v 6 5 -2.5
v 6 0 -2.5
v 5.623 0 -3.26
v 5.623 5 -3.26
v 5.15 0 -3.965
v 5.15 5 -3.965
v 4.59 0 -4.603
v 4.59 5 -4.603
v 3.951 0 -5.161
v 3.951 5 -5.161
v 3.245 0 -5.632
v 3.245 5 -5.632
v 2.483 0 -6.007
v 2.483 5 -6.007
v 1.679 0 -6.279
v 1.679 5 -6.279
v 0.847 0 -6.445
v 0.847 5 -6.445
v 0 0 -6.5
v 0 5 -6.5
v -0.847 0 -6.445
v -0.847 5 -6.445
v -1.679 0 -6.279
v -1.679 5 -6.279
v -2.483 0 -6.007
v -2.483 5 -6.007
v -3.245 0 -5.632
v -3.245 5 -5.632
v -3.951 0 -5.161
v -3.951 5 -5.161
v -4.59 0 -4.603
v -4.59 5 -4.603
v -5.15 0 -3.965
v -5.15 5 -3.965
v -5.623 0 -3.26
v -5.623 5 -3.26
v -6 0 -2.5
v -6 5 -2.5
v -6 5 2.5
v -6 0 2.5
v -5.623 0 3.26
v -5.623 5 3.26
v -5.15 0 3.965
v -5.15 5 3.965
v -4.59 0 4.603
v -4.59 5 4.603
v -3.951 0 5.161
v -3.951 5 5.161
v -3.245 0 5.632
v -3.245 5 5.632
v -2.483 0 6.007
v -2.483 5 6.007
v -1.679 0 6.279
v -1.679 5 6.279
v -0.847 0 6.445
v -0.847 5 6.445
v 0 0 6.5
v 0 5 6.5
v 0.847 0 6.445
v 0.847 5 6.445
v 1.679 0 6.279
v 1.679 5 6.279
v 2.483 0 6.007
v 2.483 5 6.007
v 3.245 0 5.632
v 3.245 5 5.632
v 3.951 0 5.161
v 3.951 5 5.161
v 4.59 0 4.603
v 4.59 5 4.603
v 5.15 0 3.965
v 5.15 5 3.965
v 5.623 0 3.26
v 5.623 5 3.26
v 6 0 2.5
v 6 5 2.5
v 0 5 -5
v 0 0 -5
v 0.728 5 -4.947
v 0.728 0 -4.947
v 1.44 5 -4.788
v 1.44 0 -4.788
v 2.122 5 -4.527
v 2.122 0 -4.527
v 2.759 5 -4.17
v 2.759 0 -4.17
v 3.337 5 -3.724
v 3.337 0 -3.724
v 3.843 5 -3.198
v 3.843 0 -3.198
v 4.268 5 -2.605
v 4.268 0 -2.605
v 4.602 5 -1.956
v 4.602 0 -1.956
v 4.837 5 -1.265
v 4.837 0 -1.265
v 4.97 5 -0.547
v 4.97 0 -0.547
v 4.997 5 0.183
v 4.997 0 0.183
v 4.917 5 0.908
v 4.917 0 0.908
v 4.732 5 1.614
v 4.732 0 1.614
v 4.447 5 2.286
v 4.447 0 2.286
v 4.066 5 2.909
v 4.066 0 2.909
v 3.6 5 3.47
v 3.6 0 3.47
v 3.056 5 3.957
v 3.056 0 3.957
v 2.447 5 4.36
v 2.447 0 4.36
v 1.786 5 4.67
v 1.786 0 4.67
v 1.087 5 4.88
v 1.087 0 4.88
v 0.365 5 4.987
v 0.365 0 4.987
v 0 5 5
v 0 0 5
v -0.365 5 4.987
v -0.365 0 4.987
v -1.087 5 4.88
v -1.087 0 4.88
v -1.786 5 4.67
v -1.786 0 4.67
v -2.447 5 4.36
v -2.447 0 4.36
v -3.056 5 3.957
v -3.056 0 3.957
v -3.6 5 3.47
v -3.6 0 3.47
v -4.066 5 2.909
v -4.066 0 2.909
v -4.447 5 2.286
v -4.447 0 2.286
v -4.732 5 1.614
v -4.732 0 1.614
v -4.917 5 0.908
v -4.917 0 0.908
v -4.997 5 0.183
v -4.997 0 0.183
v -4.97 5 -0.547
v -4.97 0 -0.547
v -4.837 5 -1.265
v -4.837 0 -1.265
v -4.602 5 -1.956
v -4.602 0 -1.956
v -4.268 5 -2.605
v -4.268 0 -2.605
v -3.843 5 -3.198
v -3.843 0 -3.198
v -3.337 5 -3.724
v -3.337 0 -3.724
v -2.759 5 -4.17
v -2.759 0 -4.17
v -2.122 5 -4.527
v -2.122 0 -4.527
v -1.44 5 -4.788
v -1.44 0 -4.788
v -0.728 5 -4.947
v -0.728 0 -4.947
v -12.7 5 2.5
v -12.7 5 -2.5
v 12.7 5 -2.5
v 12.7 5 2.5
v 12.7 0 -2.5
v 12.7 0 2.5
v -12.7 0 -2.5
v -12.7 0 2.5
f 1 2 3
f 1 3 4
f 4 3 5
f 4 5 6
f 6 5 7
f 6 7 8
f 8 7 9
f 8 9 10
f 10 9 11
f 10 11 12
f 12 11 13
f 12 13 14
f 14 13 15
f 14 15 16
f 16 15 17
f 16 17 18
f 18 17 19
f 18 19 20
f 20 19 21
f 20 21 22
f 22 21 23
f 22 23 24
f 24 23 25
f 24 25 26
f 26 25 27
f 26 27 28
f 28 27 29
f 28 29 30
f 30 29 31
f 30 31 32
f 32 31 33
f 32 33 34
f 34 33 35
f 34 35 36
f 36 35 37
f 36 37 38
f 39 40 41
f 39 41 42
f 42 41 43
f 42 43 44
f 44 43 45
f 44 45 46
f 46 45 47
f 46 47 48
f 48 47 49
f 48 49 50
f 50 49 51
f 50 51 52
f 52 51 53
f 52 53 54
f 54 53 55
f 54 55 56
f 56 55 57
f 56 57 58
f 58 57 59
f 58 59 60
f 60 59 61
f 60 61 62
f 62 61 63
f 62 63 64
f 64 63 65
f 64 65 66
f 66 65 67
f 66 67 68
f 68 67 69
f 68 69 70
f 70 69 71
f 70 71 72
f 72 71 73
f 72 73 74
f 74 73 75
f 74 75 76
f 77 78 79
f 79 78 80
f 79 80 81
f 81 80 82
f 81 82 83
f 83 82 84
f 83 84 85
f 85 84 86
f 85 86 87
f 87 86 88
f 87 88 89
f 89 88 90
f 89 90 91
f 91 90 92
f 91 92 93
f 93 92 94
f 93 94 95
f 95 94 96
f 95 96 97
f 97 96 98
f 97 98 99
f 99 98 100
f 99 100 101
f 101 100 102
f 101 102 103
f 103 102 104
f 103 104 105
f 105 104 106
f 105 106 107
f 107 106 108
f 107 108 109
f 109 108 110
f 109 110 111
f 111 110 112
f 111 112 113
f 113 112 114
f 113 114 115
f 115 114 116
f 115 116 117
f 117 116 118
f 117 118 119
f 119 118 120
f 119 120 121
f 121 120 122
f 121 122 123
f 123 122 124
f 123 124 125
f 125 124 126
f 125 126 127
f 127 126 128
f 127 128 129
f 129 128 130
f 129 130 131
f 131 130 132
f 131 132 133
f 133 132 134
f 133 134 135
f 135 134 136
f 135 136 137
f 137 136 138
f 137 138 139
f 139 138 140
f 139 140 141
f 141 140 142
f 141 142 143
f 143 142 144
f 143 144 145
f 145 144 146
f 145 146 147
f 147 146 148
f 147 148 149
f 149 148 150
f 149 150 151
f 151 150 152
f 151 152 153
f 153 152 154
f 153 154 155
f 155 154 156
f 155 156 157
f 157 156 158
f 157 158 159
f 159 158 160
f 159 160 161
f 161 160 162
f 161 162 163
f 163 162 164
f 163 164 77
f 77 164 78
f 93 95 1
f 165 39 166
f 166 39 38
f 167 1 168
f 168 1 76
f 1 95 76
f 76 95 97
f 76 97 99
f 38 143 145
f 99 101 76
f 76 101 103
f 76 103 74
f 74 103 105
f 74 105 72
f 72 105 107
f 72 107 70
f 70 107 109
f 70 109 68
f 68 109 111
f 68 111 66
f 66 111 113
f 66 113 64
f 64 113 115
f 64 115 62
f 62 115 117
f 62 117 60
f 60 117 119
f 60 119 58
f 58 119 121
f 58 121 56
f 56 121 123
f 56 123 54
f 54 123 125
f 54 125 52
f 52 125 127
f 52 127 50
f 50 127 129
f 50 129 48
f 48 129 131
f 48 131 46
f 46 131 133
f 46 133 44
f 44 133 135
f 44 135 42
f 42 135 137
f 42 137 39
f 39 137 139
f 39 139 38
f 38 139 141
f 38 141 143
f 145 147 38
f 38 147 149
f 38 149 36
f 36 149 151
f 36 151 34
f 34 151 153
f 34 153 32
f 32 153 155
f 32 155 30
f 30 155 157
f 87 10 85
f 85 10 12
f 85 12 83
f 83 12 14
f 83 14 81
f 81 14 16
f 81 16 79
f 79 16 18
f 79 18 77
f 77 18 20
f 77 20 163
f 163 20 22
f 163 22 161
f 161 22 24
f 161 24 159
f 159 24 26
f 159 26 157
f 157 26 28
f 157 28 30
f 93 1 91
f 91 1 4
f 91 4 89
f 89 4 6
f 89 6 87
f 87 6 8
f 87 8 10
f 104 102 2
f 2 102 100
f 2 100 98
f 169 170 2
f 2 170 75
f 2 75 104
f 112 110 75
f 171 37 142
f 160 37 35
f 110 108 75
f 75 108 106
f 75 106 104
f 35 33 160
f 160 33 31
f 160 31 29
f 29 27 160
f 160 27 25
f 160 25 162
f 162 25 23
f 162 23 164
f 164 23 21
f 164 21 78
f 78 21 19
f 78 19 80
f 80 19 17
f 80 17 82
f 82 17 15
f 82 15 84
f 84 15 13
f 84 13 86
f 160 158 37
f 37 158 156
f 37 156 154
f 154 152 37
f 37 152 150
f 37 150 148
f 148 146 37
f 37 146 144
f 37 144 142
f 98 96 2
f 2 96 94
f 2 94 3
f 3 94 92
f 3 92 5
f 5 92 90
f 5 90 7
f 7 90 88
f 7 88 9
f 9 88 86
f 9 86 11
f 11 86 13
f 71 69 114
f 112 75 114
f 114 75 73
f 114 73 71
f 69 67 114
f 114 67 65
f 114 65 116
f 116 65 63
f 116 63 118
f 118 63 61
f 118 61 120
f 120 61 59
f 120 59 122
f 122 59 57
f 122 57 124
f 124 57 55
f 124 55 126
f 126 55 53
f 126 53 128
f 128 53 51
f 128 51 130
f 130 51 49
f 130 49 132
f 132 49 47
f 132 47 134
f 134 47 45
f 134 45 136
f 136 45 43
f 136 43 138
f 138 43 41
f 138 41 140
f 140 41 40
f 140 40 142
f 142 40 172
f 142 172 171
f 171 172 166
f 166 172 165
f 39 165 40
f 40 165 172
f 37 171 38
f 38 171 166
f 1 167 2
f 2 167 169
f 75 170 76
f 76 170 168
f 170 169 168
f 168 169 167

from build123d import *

# Parameters (mm, degrees)
SKETCH1_R           = 6.5
SKETCH1_R_2         = 5
BOSS_EXTRUDE1_DEPTH = 5
SKETCH2_W           = 5
SKETCH2_H           = 5
BOSS_EXTRUDE2_DEPTH = 12.7
SKETCH3_R           = 5
CUT_EXTRUDE1_DEPTH  = 16.117539482


with BuildPart() as part:
    # Sketch1 → Boss-Extrude1 (new body)
    with BuildSketch(Plane(origin=(0, 0, 0), x_dir=(1, 0, 0), z_dir=(0, 1, 0))):
        Circle(SKETCH1_R)
        Circle(SKETCH1_R_2, mode=Mode.SUBTRACT)
    extrude(amount=BOSS_EXTRUDE1_DEPTH)

    # Sketch2 → Boss-Extrude2 (add, symmetric)
    with BuildSketch(Plane(origin=(0, 0, 0), x_dir=(0, -1, 0), z_dir=(-1, 0, 0))):
        with Locations((-2.5, 0)):
            Rectangle(SKETCH2_W, SKETCH2_H)
    extrude(amount=BOSS_EXTRUDE2_DEPTH, both=True)

    # Sketch3 → Cut-Extrude1 (cut, through all)
    with BuildSketch(Plane(origin=(0, 5, 0), x_dir=(1, 0, 0), z_dir=(0, 1, 0))):
        Circle(SKETCH3_R)
    extrude(amount=-CUT_EXTRUDE1_DEPTH, mode=Mode.SUBTRACT)


solid = part.part
